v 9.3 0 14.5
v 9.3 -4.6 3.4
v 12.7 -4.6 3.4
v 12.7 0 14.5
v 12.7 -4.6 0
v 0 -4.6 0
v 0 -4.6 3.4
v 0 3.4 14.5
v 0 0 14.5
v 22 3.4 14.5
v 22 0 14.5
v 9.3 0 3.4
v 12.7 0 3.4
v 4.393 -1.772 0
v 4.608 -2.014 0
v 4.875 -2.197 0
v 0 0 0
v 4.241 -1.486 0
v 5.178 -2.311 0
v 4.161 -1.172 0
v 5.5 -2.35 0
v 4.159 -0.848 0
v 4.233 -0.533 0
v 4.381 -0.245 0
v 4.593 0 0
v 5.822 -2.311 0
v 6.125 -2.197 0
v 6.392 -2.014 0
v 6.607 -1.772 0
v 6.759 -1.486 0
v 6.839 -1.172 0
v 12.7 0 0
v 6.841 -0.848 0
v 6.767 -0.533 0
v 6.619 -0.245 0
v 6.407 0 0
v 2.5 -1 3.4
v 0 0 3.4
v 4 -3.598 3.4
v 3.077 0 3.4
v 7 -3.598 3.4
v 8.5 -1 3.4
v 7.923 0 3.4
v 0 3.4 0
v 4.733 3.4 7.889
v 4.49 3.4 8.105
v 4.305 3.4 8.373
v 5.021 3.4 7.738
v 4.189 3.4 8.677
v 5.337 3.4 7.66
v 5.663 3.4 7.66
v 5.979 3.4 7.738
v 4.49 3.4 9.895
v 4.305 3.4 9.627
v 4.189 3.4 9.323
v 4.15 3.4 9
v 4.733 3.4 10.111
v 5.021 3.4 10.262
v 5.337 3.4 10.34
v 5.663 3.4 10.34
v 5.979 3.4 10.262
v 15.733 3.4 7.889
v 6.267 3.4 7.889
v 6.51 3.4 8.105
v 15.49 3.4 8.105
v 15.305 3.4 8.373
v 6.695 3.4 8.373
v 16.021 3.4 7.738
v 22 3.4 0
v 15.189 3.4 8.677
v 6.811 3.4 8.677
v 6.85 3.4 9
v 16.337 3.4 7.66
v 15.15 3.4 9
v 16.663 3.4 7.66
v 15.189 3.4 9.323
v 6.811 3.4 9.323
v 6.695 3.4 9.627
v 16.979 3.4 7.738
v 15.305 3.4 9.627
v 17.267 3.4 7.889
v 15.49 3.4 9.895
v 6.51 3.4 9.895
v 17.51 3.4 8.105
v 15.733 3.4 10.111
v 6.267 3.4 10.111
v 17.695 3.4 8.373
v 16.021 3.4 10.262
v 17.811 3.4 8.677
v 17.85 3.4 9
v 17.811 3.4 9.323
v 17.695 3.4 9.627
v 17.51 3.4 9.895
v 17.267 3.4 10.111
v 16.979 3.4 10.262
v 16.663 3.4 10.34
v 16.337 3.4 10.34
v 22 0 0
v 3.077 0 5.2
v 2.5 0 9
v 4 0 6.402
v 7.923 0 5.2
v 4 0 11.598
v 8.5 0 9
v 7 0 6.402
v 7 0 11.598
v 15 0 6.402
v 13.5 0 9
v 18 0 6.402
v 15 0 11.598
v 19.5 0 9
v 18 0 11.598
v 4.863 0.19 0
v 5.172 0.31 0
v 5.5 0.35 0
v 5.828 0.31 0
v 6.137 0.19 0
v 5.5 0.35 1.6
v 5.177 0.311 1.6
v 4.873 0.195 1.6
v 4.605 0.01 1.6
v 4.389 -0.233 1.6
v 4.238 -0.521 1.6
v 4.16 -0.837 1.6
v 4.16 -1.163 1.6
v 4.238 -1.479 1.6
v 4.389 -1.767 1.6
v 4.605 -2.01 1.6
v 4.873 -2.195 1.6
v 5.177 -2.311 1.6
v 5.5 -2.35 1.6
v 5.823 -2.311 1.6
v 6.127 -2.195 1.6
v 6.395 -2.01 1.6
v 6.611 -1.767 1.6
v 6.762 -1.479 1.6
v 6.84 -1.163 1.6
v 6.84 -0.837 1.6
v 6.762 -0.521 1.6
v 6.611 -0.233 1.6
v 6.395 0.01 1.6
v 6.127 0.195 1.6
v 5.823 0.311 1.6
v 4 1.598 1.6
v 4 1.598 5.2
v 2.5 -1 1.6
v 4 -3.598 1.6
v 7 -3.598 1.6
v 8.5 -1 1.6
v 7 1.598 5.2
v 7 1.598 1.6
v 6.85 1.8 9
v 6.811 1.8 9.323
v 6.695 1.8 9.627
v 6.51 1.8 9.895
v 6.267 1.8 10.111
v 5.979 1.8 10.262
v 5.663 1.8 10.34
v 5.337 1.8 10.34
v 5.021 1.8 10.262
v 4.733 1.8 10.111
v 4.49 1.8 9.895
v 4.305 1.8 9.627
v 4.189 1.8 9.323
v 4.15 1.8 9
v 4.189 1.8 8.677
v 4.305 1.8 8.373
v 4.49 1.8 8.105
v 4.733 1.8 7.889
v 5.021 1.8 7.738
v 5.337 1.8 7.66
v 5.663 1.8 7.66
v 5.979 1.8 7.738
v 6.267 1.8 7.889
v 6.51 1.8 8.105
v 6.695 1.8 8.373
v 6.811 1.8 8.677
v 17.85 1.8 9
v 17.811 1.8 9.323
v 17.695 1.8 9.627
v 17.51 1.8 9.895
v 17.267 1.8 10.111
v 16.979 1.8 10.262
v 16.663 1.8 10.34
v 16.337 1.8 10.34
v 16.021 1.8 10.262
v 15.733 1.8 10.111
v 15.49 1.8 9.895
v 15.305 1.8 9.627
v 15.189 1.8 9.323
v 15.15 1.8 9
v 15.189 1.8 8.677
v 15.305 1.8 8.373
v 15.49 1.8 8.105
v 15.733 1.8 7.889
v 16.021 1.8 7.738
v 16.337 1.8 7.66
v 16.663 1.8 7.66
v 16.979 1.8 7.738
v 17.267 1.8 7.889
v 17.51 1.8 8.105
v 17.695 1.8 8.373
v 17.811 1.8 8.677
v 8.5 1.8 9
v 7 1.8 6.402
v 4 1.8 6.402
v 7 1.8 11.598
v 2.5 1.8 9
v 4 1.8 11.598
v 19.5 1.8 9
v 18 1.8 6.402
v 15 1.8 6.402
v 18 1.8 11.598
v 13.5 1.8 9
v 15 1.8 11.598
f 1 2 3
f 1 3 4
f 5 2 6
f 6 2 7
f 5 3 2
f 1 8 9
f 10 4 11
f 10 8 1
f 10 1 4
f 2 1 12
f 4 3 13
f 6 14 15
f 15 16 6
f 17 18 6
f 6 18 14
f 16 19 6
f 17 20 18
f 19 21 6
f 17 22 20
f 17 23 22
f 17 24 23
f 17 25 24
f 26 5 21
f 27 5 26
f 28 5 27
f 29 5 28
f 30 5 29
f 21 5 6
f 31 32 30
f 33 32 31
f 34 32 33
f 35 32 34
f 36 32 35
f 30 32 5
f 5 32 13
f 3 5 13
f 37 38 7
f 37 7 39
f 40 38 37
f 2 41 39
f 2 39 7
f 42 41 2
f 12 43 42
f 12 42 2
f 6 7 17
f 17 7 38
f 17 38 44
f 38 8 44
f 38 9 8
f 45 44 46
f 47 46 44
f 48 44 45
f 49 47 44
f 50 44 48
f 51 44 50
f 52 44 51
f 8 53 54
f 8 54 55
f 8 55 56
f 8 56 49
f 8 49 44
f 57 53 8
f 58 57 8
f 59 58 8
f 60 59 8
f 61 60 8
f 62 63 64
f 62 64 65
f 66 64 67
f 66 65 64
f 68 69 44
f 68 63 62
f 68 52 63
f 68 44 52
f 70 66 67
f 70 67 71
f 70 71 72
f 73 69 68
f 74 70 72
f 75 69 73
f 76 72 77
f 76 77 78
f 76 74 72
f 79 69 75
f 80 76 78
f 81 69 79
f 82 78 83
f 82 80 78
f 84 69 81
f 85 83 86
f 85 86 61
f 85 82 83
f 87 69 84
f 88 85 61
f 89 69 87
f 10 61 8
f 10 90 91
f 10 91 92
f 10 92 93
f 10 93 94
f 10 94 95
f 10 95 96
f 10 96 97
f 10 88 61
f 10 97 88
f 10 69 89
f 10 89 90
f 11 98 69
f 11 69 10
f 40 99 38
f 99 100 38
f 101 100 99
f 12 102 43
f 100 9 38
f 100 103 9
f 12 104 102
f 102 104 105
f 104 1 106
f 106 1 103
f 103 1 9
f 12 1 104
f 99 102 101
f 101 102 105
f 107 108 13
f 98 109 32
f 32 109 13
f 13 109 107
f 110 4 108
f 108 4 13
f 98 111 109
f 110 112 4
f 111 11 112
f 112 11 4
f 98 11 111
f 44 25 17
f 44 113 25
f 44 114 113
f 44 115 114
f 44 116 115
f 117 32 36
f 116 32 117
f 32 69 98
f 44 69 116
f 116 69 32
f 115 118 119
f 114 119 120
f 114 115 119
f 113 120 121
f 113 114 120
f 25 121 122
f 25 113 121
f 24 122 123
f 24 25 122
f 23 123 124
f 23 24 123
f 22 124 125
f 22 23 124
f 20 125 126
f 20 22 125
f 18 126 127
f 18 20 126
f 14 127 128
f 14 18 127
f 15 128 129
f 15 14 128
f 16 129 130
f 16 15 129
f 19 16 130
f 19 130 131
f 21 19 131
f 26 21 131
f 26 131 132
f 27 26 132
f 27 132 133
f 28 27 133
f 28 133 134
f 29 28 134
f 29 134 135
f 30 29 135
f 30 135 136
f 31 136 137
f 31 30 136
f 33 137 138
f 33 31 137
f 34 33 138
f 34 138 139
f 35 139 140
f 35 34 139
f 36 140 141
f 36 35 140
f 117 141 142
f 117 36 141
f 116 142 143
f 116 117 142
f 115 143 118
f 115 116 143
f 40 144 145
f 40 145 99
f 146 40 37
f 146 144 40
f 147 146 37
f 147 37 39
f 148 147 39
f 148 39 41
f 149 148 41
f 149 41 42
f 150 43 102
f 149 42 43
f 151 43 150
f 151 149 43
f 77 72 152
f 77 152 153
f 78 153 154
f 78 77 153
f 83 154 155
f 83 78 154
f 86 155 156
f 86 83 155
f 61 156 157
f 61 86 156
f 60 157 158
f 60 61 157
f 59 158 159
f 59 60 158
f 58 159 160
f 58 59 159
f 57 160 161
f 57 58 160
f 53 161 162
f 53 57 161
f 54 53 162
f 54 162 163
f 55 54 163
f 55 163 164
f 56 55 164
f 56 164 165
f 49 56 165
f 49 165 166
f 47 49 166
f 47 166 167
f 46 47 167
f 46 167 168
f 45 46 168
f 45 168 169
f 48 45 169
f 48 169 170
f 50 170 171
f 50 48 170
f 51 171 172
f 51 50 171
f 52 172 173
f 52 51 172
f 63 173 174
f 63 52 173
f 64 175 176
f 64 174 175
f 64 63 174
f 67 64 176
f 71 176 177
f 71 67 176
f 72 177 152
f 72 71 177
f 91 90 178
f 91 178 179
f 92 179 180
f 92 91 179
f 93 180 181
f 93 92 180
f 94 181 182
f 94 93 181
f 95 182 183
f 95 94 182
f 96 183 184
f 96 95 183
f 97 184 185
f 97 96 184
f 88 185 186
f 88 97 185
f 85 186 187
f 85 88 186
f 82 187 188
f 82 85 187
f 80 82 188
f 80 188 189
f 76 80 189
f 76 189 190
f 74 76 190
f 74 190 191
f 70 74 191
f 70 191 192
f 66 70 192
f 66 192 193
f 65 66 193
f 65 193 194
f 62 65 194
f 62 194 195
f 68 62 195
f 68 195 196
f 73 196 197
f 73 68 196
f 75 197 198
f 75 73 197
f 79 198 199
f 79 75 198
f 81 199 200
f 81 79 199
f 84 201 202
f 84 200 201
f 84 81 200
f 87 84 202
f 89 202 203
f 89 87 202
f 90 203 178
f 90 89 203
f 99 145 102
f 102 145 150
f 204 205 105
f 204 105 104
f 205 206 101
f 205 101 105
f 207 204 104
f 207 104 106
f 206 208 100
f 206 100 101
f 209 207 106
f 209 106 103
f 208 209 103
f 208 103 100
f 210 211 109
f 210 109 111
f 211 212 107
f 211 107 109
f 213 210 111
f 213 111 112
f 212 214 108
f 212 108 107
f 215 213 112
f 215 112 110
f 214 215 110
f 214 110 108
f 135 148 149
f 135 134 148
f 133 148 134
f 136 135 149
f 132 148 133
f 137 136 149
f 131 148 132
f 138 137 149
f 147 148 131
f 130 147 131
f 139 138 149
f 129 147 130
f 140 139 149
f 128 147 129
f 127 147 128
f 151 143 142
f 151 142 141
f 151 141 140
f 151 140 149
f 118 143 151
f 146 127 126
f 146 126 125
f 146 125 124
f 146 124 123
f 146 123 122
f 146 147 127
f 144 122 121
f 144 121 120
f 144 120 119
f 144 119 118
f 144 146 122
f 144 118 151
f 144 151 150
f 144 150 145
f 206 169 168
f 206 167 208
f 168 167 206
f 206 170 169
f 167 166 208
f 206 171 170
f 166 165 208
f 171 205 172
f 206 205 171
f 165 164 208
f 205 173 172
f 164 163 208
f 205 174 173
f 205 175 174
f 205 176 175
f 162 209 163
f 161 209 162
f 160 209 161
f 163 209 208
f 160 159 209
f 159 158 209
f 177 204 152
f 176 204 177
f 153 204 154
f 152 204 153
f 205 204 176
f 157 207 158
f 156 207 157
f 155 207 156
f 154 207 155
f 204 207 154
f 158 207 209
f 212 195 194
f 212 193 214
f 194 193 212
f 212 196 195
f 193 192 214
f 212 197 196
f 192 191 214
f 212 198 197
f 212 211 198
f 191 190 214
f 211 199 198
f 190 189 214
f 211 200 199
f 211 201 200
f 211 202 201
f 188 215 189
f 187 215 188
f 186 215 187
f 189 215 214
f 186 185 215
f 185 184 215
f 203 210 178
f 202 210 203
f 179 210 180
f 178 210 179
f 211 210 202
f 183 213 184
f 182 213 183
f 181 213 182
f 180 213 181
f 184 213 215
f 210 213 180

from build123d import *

# Parameters (mm, degrees)
EXTRUDE003_DEPTH  = 3.6
CYLINDER002_R     = 1.35
CYLINDER002_DEPTH = 3.4
EXTRUDE002_DEPTH  = 1.8
CYLINDER003_R     = 1.35
CYLINDER003_DEPTH = 3.4
EXTRUDE001_DEPTH  = 1.8
CYLINDER_R        = 1.35
CYLINDER_DEPTH    = 3.4
BOX_W             = 22
BOX_H             = 3.4
BOX_DEPTH         = 14.5
BOX001_W          = 12.7
BOX001_H          = 4.6
BOX001_DEPTH      = 3.4
EXTRUDE_DEPTH     = 3.4


with BuildPart() as extrude003:
    # Sketch003 → Extrude003 (new body)
    with BuildSketch(Plane(origin=(5.5, -1, 1.6), x_dir=(1, 0, 0), z_dir=(0, 0, 1))):
        Polygon((3, 0), (1.5, 2.598076), (-1.5, 2.598076), (-3, 0), (-1.5, -2.598076), (1.5, -2.598076), align=None)
    extrude(amount=EXTRUDE003_DEPTH)


with BuildPart() as hole03:
    # Cylinder002 → Cylinder002 (new body)
    with BuildSketch(Plane(origin=(5.5, -1, 0), x_dir=(0, 1, 0), z_dir=(0, 0, 1))):
        Circle(CYLINDER002_R)
    extrude(amount=CYLINDER002_DEPTH)

    # Fusion002: union Extrude003
    add(extrude003.part)


with BuildPart() as extrude002:
    # Sketch002 → Extrude002 (new body)
    with BuildSketch(Plane(origin=(16.5, 1.8, 9), x_dir=(1, 0, 0), z_dir=(0, -1, 0))):
        Polygon((3, 0), (1.5, 2.598076), (-1.5, 2.598076), (-3, 0), (-1.5, -2.598076), (1.5, -2.598076), align=None)
    extrude(amount=EXTRUDE002_DEPTH)


with BuildPart() as hole02:
    # Cylinder003 → Cylinder003 (new body)
    with BuildSketch(Plane(origin=(16.5, 3.4, 9), x_dir=(1, 0, 0), z_dir=(0, -1, 0))):
        Circle(CYLINDER003_R)
    extrude(amount=CYLINDER003_DEPTH)

    # Fusion001: union Extrude002
    add(extrude002.part)


with BuildPart() as extrude001:
    # Sketch001 → Extrude001 (new body)
    with BuildSketch(Plane(origin=(5.5, 1.8, 9), x_dir=(1, 0, 0), z_dir=(0, -1, 0))):
        Polygon((3, 0), (1.5, 2.598076), (-1.5, 2.598076), (-3, 0), (-1.5, -2.598076), (1.5, -2.598076), align=None)
    extrude(amount=EXTRUDE001_DEPTH)


with BuildPart() as hole01:
    # Cylinder → Cylinder (new body)
    with BuildSketch(Plane(origin=(5.5, 3.4, 9), x_dir=(1, 0, 0), z_dir=(0, -1, 0))):
        Circle(CYLINDER_R)
    extrude(amount=CYLINDER_DEPTH)

    # Fusion: union Extrude001
    add(extrude001.part)


with BuildPart() as cut001:
    # Box → Box (new body)
    with BuildSketch(Plane.XY):
        with Locations((11, 1.7)):
            Rectangle(BOX_W, BOX_H)
    extrude(amount=BOX_DEPTH)

    # Cut: cut Hole01
    add(hole01.part, mode=Mode.SUBTRACT)

    # Cut001: cut Hole02
    add(hole02.part, mode=Mode.SUBTRACT)


with BuildPart() as cut002:
    # Box001 → Box001 (new body)
    with BuildSketch(Plane(origin=(0, -4.6, 0), x_dir=(1, 0, 0), z_dir=(0, 0, 1))):
        with Locations((6.35, 2.3)):
            Rectangle(BOX001_W, BOX001_H)
    extrude(amount=BOX001_DEPTH)

    # Fusion003: union Cut001
    add(cut001.part)

    # Cut002: cut Hole03
    add(hole03.part, mode=Mode.SUBTRACT)


with BuildPart() as left_hand_bracket:
    # Sketch → Extrude (new body)
    with BuildSketch(Plane(origin=(0, 0, 3.4), x_dir=(0, 1, 0), z_dir=(1, 0, 0))):
        Polygon((0, 11.1), (0, 0), (-4.6, 0), align=None)
    extrude(amount=EXTRUDE_DEPTH)


with BuildPart() as left_hand_bracket_1:
    # Extrude placement: moved
    add(left_hand_bracket.part.moved(Location((9.3, 0, 0))))

    # Fusion004: union Cut002
    add(cut002.part)


solid = left_hand_bracket_1.part
